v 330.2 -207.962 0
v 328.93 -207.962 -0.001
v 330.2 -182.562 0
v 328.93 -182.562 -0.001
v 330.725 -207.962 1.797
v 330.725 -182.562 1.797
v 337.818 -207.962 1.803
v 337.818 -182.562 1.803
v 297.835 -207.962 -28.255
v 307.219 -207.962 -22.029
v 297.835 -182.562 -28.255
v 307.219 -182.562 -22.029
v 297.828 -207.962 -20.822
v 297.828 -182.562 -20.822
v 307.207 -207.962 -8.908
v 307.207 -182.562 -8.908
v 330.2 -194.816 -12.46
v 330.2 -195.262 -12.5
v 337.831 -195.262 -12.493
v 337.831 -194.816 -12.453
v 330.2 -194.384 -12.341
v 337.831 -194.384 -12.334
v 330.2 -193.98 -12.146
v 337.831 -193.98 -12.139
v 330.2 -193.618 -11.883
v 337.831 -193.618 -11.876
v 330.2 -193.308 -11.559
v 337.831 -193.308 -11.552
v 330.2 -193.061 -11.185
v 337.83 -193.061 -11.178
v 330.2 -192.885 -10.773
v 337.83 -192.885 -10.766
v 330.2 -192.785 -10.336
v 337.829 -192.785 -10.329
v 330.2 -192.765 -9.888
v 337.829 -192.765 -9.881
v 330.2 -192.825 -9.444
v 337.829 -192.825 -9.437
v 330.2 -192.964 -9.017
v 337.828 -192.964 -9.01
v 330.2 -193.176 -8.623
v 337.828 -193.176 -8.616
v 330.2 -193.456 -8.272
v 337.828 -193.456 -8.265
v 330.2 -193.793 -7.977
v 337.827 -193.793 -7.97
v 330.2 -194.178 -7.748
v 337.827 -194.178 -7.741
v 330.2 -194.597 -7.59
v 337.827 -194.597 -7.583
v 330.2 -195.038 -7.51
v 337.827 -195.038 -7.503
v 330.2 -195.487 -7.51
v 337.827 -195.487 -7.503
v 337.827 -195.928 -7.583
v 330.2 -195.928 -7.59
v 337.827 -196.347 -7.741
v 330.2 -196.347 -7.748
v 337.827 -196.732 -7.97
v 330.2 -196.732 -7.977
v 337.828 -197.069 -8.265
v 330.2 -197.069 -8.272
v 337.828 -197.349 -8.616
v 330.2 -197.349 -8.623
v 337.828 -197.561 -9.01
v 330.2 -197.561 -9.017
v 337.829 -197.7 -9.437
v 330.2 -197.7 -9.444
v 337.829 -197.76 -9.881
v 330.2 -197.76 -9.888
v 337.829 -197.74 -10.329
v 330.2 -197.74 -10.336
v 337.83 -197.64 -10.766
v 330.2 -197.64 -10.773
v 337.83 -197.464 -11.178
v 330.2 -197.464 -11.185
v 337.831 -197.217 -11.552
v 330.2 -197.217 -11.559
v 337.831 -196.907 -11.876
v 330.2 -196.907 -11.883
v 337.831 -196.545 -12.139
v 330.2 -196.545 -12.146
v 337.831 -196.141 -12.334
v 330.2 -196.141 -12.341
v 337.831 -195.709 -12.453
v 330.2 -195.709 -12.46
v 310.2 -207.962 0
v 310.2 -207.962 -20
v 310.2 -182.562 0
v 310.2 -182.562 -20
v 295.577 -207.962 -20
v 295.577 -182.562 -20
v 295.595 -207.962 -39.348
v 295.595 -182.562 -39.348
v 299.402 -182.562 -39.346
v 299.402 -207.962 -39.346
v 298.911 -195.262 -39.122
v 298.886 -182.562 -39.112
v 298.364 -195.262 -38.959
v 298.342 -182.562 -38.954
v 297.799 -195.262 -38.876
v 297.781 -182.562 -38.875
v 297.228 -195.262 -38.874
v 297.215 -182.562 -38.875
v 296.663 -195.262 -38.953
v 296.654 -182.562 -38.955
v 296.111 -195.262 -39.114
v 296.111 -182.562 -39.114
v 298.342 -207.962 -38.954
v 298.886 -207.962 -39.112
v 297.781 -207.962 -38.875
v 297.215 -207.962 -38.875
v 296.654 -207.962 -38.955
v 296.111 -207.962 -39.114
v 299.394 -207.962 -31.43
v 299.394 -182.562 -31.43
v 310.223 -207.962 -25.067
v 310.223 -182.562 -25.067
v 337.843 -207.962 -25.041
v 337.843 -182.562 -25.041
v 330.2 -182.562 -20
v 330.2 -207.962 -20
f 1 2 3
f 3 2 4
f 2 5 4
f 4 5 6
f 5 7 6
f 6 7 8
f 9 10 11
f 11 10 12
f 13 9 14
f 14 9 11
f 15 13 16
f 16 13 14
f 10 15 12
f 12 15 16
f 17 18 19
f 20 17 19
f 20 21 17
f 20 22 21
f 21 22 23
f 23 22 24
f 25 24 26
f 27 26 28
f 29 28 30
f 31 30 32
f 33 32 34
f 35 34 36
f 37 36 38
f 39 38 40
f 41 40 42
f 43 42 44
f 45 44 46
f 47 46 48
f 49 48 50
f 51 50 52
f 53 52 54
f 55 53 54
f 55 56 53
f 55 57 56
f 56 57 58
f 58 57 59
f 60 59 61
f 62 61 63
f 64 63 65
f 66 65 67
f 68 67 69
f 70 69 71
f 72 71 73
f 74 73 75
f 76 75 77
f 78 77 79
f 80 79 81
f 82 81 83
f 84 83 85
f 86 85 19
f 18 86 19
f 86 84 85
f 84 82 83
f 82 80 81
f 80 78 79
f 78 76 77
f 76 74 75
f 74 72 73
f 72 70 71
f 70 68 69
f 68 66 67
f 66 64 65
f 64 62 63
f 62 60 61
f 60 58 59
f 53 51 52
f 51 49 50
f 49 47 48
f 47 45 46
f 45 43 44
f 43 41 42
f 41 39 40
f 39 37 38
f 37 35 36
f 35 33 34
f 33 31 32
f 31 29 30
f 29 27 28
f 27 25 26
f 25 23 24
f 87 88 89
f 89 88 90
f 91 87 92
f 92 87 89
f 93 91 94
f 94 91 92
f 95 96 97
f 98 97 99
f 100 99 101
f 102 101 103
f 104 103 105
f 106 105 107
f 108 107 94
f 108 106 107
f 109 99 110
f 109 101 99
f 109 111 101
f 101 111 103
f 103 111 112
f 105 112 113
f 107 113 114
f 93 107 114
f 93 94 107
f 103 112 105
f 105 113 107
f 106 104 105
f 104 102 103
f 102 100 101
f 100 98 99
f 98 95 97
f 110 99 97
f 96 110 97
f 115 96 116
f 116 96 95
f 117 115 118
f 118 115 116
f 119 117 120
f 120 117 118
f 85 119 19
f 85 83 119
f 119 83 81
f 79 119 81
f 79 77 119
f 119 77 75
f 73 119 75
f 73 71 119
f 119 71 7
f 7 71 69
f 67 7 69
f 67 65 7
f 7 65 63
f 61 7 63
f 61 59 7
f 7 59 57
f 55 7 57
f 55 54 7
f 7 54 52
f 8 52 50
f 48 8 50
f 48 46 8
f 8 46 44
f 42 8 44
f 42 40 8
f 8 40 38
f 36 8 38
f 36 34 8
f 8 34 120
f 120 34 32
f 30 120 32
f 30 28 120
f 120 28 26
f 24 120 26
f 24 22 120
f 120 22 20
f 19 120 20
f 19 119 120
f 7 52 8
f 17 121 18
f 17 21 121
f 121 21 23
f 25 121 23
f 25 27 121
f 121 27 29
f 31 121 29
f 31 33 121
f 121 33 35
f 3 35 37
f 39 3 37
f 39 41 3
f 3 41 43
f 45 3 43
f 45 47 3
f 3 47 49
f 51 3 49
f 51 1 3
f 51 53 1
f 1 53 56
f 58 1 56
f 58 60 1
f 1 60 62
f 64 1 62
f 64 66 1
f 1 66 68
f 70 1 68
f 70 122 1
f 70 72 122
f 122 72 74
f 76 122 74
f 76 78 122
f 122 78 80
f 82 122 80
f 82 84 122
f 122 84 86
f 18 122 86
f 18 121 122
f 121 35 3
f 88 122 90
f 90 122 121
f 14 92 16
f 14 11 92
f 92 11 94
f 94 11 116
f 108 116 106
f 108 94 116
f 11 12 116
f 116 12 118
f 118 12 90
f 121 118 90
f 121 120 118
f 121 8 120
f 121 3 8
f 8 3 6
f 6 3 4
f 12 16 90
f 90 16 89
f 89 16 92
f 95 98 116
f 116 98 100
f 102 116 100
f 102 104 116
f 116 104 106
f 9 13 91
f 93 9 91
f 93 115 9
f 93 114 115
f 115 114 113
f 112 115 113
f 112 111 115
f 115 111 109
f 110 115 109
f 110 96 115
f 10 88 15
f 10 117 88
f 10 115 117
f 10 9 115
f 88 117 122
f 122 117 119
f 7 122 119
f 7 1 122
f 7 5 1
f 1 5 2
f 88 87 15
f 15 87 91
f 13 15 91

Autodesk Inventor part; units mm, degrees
ref_plane "YZ Plane" through (0, 0, 0) normal (1, 0, 0) x (0, 1, 0)
ref_plane "XZ Plane" through (0, 0, 0) normal (0, 1, 0) x (-1, 0, 0)
ref_plane "XY Plane" through (0, 0, 0) normal (0, 0, 1) x (1, 0, 0)
ref_plane "Work Plane1" through (330.6234, -207.9752, -19.9742) normal (0, 1, 0) x (-1, 0, -0.0009)
sketch "Sketch1" plane through (330.6234, -207.9752, -19.9742) normal (0, 1, 0) x (-1, 0, -0.0009)
  circle A0 centre (33.1445, -22.86) radius 4 projected
  circle A1 centre (33.1445, -22.86) radius 4 projected
  circle A2 centre (33.1445, -22.86) radius 4 projected
  line L0 (20.4234, -0.007) -> (20.405, 19.993) projected
  line L1 (660.8047, 20.5832) -> (0.405, 19.9746) projected
  line L2 (0.4234, -0.0254) -> (0.405, 19.9746) projected
  line L3 (0.4234, -0.0254) -> (660.8231, 0.5832) projected
  line L4 (660.8047, 20.5832) -> (660.8231, 0.5832) projected
  line L5 (0.405, 19.9746) -> (-7.215, 19.9746)
  line L6 (0.405, 19.9746) -> (0.4234, -0.0254)
  line L7 (0.4234, -0.0254) -> (20.4234, -0.007)
  line L8 (20.4234, -0.007) -> (20.405, 19.993)
  line L9 (35.0462, 0.0065) -> (20.405, 19.993)
  line L10 (-7.215, 19.9746) -> (-7.215, 0.0065)
  line L11 (-7.215, 0.0065) -> (-7.215, -5.0735)
  line L12 (-7.215, -5.0735) -> (20.405, -5.0735)
  line L13 (20.405, -5.0735) -> (31.2395, -11.4268)
  arc A3 (35.0462, -19.341) -> (31.2395, -19.3428) centre (33.1445, -22.86) ccw
  line L14 (31.2395, -19.3428) -> (31.2395, -11.4268)
  line L15 (35.0462, -19.341) -> (35.0462, 0.0065)
  line L16 (20.405, 19.993) -> (20.4234, -0.007)
  line L17 (0.4234, -0.0254) -> (20.4234, -0.007)
  point P0 (330.6048, 20.2789)
  dimension "d0" = 7.62
  dimension "d3" = 5.08
extrude "Extrusion1" add sketch "Sketch1" along normal blind 25.4 contours A0 L14 L13 L12 L11 L10 L5 L2 L3 L15 | L3 L0 L9
sketch "Sketch2" plane through (337.8431, -207.9752, -25.0411) normal (1, 0, 0.0009) x (0.0009, 0, -1)
  line L0 (14.2693, 0) -> (14.2693, 25.4) projected
  line L1 (-5.0481, 0) -> (-5.0481, 25.4) projected
  line L2 (-25.0481, 25.4) -> (0, 25.4) projected
  line L3 (-25.0481, 0) -> (-25.0481, 25.4) projected
  line L4 (-5.0481, 25.4) -> (-25.0481, 25.4) projected
  line L5 (-15.0481, 25.4) -> (-15.0481, 12.7)
  circle A0 centre (-15.0481, 12.7) radius 2.5
  point P0 (-25.3524, 207.9752)
  dimension "d6" = 5
extrude "Extrusion2" cut sketch "Sketch2" against normal blind 25.4
sketch "Sketch3" plane through (330.6234, -182.5752, -19.9742) normal (0, 1, 0) x (1, 0, 0.0009)
  line L0 (-20.4234, 0.007) -> (-0.4234, 0.0254) projected
  line L1 (-0.4234, 0.0254) -> (-0.405, -19.9746) projected
  line L2 (-0.405, -19.9746) -> (7.215, -19.9746) projected
  line L3 (7.215, -19.9746) -> (7.215, 5.0735) projected
  line L4 (7.215, 5.0735) -> (-20.405, 5.0735) projected
  line L5 (-20.405, 5.0735) -> (-31.2395, 11.4268) projected
  line L6 (-31.2395, 11.4268) -> (-31.2395, 19.3428) projected
  arc A0 (-35.0462, 19.341) -> (-31.2395, 19.3428) centre (-33.1445, 22.86) ccw projected
  line L7 (-35.0462, 19.341) -> (-35.0462, -0.0065) projected
  line L8 (-35.0462, -0.0065) -> (-20.405, -19.993) projected
  line L9 (-20.405, -19.993) -> (-20.4234, 0.007) projected
  line L10 (-32.7964, 8.2501) -> (-32.7964, 0.8179)
  line L11 (-32.7964, 0.8179) -> (-23.4059, -11.0873)
  line L12 (-23.4059, -11.0873) -> (-23.4059, 2.0332)
  line L13 (-23.4059, 2.0332) -> (-32.7964, 8.2501)
  point P0 (-330.6048, -20.2789)
extrude "Extrusion3" cut sketch "Sketch3" against normal blind 50.8 contours L13 L12 L11 L10
sketch "Sketch4" plane through (337.82, -207.9752, 0.007) normal (-0.0009, 0, 1) x (1, 0, 0.0009)
  point P0 (-337.8199, 207.9752)
sketch "Sketch5" plane through (330.6234, -182.5752, -19.9742) normal (0, 1, 0) x (1, 0, 0.0009)
  line L0 (-0.405, -19.9746) -> (7.215, -19.9746) projected
  line L1 (-0.4234, 0.0254) -> (-0.405, -19.9746) projected
  line L2 (-0.405, -19.9746) -> (-1.675, -19.9746)
  line L3 (-0.405, -19.9746) -> (0.865, -19.9746) construction
  line L4 (-1.675, -19.9746) -> (0.1211, -21.7706)
  line L5 (0.1211, -21.7706) -> (7.215, -21.7706)
  line L6 (7.215, -21.7706) -> (7.215, -19.9746)
  line L7 (-0.405, -19.9746) -> (-0.405, -19.9746)
  line L8 (-0.405, -19.9746) -> (7.215, -19.9746)
  point P0 (-330.6048, -20.2789)
  dimension "d11" = 1.27
  dimension "d12" = 180
  dimension "d13" = 2.54
  dimension "d14" = 45
extrude "Extrusion4" add sketch "Sketch5" against normal up to surface (25.4 mm away)
properties part number "Braces"
